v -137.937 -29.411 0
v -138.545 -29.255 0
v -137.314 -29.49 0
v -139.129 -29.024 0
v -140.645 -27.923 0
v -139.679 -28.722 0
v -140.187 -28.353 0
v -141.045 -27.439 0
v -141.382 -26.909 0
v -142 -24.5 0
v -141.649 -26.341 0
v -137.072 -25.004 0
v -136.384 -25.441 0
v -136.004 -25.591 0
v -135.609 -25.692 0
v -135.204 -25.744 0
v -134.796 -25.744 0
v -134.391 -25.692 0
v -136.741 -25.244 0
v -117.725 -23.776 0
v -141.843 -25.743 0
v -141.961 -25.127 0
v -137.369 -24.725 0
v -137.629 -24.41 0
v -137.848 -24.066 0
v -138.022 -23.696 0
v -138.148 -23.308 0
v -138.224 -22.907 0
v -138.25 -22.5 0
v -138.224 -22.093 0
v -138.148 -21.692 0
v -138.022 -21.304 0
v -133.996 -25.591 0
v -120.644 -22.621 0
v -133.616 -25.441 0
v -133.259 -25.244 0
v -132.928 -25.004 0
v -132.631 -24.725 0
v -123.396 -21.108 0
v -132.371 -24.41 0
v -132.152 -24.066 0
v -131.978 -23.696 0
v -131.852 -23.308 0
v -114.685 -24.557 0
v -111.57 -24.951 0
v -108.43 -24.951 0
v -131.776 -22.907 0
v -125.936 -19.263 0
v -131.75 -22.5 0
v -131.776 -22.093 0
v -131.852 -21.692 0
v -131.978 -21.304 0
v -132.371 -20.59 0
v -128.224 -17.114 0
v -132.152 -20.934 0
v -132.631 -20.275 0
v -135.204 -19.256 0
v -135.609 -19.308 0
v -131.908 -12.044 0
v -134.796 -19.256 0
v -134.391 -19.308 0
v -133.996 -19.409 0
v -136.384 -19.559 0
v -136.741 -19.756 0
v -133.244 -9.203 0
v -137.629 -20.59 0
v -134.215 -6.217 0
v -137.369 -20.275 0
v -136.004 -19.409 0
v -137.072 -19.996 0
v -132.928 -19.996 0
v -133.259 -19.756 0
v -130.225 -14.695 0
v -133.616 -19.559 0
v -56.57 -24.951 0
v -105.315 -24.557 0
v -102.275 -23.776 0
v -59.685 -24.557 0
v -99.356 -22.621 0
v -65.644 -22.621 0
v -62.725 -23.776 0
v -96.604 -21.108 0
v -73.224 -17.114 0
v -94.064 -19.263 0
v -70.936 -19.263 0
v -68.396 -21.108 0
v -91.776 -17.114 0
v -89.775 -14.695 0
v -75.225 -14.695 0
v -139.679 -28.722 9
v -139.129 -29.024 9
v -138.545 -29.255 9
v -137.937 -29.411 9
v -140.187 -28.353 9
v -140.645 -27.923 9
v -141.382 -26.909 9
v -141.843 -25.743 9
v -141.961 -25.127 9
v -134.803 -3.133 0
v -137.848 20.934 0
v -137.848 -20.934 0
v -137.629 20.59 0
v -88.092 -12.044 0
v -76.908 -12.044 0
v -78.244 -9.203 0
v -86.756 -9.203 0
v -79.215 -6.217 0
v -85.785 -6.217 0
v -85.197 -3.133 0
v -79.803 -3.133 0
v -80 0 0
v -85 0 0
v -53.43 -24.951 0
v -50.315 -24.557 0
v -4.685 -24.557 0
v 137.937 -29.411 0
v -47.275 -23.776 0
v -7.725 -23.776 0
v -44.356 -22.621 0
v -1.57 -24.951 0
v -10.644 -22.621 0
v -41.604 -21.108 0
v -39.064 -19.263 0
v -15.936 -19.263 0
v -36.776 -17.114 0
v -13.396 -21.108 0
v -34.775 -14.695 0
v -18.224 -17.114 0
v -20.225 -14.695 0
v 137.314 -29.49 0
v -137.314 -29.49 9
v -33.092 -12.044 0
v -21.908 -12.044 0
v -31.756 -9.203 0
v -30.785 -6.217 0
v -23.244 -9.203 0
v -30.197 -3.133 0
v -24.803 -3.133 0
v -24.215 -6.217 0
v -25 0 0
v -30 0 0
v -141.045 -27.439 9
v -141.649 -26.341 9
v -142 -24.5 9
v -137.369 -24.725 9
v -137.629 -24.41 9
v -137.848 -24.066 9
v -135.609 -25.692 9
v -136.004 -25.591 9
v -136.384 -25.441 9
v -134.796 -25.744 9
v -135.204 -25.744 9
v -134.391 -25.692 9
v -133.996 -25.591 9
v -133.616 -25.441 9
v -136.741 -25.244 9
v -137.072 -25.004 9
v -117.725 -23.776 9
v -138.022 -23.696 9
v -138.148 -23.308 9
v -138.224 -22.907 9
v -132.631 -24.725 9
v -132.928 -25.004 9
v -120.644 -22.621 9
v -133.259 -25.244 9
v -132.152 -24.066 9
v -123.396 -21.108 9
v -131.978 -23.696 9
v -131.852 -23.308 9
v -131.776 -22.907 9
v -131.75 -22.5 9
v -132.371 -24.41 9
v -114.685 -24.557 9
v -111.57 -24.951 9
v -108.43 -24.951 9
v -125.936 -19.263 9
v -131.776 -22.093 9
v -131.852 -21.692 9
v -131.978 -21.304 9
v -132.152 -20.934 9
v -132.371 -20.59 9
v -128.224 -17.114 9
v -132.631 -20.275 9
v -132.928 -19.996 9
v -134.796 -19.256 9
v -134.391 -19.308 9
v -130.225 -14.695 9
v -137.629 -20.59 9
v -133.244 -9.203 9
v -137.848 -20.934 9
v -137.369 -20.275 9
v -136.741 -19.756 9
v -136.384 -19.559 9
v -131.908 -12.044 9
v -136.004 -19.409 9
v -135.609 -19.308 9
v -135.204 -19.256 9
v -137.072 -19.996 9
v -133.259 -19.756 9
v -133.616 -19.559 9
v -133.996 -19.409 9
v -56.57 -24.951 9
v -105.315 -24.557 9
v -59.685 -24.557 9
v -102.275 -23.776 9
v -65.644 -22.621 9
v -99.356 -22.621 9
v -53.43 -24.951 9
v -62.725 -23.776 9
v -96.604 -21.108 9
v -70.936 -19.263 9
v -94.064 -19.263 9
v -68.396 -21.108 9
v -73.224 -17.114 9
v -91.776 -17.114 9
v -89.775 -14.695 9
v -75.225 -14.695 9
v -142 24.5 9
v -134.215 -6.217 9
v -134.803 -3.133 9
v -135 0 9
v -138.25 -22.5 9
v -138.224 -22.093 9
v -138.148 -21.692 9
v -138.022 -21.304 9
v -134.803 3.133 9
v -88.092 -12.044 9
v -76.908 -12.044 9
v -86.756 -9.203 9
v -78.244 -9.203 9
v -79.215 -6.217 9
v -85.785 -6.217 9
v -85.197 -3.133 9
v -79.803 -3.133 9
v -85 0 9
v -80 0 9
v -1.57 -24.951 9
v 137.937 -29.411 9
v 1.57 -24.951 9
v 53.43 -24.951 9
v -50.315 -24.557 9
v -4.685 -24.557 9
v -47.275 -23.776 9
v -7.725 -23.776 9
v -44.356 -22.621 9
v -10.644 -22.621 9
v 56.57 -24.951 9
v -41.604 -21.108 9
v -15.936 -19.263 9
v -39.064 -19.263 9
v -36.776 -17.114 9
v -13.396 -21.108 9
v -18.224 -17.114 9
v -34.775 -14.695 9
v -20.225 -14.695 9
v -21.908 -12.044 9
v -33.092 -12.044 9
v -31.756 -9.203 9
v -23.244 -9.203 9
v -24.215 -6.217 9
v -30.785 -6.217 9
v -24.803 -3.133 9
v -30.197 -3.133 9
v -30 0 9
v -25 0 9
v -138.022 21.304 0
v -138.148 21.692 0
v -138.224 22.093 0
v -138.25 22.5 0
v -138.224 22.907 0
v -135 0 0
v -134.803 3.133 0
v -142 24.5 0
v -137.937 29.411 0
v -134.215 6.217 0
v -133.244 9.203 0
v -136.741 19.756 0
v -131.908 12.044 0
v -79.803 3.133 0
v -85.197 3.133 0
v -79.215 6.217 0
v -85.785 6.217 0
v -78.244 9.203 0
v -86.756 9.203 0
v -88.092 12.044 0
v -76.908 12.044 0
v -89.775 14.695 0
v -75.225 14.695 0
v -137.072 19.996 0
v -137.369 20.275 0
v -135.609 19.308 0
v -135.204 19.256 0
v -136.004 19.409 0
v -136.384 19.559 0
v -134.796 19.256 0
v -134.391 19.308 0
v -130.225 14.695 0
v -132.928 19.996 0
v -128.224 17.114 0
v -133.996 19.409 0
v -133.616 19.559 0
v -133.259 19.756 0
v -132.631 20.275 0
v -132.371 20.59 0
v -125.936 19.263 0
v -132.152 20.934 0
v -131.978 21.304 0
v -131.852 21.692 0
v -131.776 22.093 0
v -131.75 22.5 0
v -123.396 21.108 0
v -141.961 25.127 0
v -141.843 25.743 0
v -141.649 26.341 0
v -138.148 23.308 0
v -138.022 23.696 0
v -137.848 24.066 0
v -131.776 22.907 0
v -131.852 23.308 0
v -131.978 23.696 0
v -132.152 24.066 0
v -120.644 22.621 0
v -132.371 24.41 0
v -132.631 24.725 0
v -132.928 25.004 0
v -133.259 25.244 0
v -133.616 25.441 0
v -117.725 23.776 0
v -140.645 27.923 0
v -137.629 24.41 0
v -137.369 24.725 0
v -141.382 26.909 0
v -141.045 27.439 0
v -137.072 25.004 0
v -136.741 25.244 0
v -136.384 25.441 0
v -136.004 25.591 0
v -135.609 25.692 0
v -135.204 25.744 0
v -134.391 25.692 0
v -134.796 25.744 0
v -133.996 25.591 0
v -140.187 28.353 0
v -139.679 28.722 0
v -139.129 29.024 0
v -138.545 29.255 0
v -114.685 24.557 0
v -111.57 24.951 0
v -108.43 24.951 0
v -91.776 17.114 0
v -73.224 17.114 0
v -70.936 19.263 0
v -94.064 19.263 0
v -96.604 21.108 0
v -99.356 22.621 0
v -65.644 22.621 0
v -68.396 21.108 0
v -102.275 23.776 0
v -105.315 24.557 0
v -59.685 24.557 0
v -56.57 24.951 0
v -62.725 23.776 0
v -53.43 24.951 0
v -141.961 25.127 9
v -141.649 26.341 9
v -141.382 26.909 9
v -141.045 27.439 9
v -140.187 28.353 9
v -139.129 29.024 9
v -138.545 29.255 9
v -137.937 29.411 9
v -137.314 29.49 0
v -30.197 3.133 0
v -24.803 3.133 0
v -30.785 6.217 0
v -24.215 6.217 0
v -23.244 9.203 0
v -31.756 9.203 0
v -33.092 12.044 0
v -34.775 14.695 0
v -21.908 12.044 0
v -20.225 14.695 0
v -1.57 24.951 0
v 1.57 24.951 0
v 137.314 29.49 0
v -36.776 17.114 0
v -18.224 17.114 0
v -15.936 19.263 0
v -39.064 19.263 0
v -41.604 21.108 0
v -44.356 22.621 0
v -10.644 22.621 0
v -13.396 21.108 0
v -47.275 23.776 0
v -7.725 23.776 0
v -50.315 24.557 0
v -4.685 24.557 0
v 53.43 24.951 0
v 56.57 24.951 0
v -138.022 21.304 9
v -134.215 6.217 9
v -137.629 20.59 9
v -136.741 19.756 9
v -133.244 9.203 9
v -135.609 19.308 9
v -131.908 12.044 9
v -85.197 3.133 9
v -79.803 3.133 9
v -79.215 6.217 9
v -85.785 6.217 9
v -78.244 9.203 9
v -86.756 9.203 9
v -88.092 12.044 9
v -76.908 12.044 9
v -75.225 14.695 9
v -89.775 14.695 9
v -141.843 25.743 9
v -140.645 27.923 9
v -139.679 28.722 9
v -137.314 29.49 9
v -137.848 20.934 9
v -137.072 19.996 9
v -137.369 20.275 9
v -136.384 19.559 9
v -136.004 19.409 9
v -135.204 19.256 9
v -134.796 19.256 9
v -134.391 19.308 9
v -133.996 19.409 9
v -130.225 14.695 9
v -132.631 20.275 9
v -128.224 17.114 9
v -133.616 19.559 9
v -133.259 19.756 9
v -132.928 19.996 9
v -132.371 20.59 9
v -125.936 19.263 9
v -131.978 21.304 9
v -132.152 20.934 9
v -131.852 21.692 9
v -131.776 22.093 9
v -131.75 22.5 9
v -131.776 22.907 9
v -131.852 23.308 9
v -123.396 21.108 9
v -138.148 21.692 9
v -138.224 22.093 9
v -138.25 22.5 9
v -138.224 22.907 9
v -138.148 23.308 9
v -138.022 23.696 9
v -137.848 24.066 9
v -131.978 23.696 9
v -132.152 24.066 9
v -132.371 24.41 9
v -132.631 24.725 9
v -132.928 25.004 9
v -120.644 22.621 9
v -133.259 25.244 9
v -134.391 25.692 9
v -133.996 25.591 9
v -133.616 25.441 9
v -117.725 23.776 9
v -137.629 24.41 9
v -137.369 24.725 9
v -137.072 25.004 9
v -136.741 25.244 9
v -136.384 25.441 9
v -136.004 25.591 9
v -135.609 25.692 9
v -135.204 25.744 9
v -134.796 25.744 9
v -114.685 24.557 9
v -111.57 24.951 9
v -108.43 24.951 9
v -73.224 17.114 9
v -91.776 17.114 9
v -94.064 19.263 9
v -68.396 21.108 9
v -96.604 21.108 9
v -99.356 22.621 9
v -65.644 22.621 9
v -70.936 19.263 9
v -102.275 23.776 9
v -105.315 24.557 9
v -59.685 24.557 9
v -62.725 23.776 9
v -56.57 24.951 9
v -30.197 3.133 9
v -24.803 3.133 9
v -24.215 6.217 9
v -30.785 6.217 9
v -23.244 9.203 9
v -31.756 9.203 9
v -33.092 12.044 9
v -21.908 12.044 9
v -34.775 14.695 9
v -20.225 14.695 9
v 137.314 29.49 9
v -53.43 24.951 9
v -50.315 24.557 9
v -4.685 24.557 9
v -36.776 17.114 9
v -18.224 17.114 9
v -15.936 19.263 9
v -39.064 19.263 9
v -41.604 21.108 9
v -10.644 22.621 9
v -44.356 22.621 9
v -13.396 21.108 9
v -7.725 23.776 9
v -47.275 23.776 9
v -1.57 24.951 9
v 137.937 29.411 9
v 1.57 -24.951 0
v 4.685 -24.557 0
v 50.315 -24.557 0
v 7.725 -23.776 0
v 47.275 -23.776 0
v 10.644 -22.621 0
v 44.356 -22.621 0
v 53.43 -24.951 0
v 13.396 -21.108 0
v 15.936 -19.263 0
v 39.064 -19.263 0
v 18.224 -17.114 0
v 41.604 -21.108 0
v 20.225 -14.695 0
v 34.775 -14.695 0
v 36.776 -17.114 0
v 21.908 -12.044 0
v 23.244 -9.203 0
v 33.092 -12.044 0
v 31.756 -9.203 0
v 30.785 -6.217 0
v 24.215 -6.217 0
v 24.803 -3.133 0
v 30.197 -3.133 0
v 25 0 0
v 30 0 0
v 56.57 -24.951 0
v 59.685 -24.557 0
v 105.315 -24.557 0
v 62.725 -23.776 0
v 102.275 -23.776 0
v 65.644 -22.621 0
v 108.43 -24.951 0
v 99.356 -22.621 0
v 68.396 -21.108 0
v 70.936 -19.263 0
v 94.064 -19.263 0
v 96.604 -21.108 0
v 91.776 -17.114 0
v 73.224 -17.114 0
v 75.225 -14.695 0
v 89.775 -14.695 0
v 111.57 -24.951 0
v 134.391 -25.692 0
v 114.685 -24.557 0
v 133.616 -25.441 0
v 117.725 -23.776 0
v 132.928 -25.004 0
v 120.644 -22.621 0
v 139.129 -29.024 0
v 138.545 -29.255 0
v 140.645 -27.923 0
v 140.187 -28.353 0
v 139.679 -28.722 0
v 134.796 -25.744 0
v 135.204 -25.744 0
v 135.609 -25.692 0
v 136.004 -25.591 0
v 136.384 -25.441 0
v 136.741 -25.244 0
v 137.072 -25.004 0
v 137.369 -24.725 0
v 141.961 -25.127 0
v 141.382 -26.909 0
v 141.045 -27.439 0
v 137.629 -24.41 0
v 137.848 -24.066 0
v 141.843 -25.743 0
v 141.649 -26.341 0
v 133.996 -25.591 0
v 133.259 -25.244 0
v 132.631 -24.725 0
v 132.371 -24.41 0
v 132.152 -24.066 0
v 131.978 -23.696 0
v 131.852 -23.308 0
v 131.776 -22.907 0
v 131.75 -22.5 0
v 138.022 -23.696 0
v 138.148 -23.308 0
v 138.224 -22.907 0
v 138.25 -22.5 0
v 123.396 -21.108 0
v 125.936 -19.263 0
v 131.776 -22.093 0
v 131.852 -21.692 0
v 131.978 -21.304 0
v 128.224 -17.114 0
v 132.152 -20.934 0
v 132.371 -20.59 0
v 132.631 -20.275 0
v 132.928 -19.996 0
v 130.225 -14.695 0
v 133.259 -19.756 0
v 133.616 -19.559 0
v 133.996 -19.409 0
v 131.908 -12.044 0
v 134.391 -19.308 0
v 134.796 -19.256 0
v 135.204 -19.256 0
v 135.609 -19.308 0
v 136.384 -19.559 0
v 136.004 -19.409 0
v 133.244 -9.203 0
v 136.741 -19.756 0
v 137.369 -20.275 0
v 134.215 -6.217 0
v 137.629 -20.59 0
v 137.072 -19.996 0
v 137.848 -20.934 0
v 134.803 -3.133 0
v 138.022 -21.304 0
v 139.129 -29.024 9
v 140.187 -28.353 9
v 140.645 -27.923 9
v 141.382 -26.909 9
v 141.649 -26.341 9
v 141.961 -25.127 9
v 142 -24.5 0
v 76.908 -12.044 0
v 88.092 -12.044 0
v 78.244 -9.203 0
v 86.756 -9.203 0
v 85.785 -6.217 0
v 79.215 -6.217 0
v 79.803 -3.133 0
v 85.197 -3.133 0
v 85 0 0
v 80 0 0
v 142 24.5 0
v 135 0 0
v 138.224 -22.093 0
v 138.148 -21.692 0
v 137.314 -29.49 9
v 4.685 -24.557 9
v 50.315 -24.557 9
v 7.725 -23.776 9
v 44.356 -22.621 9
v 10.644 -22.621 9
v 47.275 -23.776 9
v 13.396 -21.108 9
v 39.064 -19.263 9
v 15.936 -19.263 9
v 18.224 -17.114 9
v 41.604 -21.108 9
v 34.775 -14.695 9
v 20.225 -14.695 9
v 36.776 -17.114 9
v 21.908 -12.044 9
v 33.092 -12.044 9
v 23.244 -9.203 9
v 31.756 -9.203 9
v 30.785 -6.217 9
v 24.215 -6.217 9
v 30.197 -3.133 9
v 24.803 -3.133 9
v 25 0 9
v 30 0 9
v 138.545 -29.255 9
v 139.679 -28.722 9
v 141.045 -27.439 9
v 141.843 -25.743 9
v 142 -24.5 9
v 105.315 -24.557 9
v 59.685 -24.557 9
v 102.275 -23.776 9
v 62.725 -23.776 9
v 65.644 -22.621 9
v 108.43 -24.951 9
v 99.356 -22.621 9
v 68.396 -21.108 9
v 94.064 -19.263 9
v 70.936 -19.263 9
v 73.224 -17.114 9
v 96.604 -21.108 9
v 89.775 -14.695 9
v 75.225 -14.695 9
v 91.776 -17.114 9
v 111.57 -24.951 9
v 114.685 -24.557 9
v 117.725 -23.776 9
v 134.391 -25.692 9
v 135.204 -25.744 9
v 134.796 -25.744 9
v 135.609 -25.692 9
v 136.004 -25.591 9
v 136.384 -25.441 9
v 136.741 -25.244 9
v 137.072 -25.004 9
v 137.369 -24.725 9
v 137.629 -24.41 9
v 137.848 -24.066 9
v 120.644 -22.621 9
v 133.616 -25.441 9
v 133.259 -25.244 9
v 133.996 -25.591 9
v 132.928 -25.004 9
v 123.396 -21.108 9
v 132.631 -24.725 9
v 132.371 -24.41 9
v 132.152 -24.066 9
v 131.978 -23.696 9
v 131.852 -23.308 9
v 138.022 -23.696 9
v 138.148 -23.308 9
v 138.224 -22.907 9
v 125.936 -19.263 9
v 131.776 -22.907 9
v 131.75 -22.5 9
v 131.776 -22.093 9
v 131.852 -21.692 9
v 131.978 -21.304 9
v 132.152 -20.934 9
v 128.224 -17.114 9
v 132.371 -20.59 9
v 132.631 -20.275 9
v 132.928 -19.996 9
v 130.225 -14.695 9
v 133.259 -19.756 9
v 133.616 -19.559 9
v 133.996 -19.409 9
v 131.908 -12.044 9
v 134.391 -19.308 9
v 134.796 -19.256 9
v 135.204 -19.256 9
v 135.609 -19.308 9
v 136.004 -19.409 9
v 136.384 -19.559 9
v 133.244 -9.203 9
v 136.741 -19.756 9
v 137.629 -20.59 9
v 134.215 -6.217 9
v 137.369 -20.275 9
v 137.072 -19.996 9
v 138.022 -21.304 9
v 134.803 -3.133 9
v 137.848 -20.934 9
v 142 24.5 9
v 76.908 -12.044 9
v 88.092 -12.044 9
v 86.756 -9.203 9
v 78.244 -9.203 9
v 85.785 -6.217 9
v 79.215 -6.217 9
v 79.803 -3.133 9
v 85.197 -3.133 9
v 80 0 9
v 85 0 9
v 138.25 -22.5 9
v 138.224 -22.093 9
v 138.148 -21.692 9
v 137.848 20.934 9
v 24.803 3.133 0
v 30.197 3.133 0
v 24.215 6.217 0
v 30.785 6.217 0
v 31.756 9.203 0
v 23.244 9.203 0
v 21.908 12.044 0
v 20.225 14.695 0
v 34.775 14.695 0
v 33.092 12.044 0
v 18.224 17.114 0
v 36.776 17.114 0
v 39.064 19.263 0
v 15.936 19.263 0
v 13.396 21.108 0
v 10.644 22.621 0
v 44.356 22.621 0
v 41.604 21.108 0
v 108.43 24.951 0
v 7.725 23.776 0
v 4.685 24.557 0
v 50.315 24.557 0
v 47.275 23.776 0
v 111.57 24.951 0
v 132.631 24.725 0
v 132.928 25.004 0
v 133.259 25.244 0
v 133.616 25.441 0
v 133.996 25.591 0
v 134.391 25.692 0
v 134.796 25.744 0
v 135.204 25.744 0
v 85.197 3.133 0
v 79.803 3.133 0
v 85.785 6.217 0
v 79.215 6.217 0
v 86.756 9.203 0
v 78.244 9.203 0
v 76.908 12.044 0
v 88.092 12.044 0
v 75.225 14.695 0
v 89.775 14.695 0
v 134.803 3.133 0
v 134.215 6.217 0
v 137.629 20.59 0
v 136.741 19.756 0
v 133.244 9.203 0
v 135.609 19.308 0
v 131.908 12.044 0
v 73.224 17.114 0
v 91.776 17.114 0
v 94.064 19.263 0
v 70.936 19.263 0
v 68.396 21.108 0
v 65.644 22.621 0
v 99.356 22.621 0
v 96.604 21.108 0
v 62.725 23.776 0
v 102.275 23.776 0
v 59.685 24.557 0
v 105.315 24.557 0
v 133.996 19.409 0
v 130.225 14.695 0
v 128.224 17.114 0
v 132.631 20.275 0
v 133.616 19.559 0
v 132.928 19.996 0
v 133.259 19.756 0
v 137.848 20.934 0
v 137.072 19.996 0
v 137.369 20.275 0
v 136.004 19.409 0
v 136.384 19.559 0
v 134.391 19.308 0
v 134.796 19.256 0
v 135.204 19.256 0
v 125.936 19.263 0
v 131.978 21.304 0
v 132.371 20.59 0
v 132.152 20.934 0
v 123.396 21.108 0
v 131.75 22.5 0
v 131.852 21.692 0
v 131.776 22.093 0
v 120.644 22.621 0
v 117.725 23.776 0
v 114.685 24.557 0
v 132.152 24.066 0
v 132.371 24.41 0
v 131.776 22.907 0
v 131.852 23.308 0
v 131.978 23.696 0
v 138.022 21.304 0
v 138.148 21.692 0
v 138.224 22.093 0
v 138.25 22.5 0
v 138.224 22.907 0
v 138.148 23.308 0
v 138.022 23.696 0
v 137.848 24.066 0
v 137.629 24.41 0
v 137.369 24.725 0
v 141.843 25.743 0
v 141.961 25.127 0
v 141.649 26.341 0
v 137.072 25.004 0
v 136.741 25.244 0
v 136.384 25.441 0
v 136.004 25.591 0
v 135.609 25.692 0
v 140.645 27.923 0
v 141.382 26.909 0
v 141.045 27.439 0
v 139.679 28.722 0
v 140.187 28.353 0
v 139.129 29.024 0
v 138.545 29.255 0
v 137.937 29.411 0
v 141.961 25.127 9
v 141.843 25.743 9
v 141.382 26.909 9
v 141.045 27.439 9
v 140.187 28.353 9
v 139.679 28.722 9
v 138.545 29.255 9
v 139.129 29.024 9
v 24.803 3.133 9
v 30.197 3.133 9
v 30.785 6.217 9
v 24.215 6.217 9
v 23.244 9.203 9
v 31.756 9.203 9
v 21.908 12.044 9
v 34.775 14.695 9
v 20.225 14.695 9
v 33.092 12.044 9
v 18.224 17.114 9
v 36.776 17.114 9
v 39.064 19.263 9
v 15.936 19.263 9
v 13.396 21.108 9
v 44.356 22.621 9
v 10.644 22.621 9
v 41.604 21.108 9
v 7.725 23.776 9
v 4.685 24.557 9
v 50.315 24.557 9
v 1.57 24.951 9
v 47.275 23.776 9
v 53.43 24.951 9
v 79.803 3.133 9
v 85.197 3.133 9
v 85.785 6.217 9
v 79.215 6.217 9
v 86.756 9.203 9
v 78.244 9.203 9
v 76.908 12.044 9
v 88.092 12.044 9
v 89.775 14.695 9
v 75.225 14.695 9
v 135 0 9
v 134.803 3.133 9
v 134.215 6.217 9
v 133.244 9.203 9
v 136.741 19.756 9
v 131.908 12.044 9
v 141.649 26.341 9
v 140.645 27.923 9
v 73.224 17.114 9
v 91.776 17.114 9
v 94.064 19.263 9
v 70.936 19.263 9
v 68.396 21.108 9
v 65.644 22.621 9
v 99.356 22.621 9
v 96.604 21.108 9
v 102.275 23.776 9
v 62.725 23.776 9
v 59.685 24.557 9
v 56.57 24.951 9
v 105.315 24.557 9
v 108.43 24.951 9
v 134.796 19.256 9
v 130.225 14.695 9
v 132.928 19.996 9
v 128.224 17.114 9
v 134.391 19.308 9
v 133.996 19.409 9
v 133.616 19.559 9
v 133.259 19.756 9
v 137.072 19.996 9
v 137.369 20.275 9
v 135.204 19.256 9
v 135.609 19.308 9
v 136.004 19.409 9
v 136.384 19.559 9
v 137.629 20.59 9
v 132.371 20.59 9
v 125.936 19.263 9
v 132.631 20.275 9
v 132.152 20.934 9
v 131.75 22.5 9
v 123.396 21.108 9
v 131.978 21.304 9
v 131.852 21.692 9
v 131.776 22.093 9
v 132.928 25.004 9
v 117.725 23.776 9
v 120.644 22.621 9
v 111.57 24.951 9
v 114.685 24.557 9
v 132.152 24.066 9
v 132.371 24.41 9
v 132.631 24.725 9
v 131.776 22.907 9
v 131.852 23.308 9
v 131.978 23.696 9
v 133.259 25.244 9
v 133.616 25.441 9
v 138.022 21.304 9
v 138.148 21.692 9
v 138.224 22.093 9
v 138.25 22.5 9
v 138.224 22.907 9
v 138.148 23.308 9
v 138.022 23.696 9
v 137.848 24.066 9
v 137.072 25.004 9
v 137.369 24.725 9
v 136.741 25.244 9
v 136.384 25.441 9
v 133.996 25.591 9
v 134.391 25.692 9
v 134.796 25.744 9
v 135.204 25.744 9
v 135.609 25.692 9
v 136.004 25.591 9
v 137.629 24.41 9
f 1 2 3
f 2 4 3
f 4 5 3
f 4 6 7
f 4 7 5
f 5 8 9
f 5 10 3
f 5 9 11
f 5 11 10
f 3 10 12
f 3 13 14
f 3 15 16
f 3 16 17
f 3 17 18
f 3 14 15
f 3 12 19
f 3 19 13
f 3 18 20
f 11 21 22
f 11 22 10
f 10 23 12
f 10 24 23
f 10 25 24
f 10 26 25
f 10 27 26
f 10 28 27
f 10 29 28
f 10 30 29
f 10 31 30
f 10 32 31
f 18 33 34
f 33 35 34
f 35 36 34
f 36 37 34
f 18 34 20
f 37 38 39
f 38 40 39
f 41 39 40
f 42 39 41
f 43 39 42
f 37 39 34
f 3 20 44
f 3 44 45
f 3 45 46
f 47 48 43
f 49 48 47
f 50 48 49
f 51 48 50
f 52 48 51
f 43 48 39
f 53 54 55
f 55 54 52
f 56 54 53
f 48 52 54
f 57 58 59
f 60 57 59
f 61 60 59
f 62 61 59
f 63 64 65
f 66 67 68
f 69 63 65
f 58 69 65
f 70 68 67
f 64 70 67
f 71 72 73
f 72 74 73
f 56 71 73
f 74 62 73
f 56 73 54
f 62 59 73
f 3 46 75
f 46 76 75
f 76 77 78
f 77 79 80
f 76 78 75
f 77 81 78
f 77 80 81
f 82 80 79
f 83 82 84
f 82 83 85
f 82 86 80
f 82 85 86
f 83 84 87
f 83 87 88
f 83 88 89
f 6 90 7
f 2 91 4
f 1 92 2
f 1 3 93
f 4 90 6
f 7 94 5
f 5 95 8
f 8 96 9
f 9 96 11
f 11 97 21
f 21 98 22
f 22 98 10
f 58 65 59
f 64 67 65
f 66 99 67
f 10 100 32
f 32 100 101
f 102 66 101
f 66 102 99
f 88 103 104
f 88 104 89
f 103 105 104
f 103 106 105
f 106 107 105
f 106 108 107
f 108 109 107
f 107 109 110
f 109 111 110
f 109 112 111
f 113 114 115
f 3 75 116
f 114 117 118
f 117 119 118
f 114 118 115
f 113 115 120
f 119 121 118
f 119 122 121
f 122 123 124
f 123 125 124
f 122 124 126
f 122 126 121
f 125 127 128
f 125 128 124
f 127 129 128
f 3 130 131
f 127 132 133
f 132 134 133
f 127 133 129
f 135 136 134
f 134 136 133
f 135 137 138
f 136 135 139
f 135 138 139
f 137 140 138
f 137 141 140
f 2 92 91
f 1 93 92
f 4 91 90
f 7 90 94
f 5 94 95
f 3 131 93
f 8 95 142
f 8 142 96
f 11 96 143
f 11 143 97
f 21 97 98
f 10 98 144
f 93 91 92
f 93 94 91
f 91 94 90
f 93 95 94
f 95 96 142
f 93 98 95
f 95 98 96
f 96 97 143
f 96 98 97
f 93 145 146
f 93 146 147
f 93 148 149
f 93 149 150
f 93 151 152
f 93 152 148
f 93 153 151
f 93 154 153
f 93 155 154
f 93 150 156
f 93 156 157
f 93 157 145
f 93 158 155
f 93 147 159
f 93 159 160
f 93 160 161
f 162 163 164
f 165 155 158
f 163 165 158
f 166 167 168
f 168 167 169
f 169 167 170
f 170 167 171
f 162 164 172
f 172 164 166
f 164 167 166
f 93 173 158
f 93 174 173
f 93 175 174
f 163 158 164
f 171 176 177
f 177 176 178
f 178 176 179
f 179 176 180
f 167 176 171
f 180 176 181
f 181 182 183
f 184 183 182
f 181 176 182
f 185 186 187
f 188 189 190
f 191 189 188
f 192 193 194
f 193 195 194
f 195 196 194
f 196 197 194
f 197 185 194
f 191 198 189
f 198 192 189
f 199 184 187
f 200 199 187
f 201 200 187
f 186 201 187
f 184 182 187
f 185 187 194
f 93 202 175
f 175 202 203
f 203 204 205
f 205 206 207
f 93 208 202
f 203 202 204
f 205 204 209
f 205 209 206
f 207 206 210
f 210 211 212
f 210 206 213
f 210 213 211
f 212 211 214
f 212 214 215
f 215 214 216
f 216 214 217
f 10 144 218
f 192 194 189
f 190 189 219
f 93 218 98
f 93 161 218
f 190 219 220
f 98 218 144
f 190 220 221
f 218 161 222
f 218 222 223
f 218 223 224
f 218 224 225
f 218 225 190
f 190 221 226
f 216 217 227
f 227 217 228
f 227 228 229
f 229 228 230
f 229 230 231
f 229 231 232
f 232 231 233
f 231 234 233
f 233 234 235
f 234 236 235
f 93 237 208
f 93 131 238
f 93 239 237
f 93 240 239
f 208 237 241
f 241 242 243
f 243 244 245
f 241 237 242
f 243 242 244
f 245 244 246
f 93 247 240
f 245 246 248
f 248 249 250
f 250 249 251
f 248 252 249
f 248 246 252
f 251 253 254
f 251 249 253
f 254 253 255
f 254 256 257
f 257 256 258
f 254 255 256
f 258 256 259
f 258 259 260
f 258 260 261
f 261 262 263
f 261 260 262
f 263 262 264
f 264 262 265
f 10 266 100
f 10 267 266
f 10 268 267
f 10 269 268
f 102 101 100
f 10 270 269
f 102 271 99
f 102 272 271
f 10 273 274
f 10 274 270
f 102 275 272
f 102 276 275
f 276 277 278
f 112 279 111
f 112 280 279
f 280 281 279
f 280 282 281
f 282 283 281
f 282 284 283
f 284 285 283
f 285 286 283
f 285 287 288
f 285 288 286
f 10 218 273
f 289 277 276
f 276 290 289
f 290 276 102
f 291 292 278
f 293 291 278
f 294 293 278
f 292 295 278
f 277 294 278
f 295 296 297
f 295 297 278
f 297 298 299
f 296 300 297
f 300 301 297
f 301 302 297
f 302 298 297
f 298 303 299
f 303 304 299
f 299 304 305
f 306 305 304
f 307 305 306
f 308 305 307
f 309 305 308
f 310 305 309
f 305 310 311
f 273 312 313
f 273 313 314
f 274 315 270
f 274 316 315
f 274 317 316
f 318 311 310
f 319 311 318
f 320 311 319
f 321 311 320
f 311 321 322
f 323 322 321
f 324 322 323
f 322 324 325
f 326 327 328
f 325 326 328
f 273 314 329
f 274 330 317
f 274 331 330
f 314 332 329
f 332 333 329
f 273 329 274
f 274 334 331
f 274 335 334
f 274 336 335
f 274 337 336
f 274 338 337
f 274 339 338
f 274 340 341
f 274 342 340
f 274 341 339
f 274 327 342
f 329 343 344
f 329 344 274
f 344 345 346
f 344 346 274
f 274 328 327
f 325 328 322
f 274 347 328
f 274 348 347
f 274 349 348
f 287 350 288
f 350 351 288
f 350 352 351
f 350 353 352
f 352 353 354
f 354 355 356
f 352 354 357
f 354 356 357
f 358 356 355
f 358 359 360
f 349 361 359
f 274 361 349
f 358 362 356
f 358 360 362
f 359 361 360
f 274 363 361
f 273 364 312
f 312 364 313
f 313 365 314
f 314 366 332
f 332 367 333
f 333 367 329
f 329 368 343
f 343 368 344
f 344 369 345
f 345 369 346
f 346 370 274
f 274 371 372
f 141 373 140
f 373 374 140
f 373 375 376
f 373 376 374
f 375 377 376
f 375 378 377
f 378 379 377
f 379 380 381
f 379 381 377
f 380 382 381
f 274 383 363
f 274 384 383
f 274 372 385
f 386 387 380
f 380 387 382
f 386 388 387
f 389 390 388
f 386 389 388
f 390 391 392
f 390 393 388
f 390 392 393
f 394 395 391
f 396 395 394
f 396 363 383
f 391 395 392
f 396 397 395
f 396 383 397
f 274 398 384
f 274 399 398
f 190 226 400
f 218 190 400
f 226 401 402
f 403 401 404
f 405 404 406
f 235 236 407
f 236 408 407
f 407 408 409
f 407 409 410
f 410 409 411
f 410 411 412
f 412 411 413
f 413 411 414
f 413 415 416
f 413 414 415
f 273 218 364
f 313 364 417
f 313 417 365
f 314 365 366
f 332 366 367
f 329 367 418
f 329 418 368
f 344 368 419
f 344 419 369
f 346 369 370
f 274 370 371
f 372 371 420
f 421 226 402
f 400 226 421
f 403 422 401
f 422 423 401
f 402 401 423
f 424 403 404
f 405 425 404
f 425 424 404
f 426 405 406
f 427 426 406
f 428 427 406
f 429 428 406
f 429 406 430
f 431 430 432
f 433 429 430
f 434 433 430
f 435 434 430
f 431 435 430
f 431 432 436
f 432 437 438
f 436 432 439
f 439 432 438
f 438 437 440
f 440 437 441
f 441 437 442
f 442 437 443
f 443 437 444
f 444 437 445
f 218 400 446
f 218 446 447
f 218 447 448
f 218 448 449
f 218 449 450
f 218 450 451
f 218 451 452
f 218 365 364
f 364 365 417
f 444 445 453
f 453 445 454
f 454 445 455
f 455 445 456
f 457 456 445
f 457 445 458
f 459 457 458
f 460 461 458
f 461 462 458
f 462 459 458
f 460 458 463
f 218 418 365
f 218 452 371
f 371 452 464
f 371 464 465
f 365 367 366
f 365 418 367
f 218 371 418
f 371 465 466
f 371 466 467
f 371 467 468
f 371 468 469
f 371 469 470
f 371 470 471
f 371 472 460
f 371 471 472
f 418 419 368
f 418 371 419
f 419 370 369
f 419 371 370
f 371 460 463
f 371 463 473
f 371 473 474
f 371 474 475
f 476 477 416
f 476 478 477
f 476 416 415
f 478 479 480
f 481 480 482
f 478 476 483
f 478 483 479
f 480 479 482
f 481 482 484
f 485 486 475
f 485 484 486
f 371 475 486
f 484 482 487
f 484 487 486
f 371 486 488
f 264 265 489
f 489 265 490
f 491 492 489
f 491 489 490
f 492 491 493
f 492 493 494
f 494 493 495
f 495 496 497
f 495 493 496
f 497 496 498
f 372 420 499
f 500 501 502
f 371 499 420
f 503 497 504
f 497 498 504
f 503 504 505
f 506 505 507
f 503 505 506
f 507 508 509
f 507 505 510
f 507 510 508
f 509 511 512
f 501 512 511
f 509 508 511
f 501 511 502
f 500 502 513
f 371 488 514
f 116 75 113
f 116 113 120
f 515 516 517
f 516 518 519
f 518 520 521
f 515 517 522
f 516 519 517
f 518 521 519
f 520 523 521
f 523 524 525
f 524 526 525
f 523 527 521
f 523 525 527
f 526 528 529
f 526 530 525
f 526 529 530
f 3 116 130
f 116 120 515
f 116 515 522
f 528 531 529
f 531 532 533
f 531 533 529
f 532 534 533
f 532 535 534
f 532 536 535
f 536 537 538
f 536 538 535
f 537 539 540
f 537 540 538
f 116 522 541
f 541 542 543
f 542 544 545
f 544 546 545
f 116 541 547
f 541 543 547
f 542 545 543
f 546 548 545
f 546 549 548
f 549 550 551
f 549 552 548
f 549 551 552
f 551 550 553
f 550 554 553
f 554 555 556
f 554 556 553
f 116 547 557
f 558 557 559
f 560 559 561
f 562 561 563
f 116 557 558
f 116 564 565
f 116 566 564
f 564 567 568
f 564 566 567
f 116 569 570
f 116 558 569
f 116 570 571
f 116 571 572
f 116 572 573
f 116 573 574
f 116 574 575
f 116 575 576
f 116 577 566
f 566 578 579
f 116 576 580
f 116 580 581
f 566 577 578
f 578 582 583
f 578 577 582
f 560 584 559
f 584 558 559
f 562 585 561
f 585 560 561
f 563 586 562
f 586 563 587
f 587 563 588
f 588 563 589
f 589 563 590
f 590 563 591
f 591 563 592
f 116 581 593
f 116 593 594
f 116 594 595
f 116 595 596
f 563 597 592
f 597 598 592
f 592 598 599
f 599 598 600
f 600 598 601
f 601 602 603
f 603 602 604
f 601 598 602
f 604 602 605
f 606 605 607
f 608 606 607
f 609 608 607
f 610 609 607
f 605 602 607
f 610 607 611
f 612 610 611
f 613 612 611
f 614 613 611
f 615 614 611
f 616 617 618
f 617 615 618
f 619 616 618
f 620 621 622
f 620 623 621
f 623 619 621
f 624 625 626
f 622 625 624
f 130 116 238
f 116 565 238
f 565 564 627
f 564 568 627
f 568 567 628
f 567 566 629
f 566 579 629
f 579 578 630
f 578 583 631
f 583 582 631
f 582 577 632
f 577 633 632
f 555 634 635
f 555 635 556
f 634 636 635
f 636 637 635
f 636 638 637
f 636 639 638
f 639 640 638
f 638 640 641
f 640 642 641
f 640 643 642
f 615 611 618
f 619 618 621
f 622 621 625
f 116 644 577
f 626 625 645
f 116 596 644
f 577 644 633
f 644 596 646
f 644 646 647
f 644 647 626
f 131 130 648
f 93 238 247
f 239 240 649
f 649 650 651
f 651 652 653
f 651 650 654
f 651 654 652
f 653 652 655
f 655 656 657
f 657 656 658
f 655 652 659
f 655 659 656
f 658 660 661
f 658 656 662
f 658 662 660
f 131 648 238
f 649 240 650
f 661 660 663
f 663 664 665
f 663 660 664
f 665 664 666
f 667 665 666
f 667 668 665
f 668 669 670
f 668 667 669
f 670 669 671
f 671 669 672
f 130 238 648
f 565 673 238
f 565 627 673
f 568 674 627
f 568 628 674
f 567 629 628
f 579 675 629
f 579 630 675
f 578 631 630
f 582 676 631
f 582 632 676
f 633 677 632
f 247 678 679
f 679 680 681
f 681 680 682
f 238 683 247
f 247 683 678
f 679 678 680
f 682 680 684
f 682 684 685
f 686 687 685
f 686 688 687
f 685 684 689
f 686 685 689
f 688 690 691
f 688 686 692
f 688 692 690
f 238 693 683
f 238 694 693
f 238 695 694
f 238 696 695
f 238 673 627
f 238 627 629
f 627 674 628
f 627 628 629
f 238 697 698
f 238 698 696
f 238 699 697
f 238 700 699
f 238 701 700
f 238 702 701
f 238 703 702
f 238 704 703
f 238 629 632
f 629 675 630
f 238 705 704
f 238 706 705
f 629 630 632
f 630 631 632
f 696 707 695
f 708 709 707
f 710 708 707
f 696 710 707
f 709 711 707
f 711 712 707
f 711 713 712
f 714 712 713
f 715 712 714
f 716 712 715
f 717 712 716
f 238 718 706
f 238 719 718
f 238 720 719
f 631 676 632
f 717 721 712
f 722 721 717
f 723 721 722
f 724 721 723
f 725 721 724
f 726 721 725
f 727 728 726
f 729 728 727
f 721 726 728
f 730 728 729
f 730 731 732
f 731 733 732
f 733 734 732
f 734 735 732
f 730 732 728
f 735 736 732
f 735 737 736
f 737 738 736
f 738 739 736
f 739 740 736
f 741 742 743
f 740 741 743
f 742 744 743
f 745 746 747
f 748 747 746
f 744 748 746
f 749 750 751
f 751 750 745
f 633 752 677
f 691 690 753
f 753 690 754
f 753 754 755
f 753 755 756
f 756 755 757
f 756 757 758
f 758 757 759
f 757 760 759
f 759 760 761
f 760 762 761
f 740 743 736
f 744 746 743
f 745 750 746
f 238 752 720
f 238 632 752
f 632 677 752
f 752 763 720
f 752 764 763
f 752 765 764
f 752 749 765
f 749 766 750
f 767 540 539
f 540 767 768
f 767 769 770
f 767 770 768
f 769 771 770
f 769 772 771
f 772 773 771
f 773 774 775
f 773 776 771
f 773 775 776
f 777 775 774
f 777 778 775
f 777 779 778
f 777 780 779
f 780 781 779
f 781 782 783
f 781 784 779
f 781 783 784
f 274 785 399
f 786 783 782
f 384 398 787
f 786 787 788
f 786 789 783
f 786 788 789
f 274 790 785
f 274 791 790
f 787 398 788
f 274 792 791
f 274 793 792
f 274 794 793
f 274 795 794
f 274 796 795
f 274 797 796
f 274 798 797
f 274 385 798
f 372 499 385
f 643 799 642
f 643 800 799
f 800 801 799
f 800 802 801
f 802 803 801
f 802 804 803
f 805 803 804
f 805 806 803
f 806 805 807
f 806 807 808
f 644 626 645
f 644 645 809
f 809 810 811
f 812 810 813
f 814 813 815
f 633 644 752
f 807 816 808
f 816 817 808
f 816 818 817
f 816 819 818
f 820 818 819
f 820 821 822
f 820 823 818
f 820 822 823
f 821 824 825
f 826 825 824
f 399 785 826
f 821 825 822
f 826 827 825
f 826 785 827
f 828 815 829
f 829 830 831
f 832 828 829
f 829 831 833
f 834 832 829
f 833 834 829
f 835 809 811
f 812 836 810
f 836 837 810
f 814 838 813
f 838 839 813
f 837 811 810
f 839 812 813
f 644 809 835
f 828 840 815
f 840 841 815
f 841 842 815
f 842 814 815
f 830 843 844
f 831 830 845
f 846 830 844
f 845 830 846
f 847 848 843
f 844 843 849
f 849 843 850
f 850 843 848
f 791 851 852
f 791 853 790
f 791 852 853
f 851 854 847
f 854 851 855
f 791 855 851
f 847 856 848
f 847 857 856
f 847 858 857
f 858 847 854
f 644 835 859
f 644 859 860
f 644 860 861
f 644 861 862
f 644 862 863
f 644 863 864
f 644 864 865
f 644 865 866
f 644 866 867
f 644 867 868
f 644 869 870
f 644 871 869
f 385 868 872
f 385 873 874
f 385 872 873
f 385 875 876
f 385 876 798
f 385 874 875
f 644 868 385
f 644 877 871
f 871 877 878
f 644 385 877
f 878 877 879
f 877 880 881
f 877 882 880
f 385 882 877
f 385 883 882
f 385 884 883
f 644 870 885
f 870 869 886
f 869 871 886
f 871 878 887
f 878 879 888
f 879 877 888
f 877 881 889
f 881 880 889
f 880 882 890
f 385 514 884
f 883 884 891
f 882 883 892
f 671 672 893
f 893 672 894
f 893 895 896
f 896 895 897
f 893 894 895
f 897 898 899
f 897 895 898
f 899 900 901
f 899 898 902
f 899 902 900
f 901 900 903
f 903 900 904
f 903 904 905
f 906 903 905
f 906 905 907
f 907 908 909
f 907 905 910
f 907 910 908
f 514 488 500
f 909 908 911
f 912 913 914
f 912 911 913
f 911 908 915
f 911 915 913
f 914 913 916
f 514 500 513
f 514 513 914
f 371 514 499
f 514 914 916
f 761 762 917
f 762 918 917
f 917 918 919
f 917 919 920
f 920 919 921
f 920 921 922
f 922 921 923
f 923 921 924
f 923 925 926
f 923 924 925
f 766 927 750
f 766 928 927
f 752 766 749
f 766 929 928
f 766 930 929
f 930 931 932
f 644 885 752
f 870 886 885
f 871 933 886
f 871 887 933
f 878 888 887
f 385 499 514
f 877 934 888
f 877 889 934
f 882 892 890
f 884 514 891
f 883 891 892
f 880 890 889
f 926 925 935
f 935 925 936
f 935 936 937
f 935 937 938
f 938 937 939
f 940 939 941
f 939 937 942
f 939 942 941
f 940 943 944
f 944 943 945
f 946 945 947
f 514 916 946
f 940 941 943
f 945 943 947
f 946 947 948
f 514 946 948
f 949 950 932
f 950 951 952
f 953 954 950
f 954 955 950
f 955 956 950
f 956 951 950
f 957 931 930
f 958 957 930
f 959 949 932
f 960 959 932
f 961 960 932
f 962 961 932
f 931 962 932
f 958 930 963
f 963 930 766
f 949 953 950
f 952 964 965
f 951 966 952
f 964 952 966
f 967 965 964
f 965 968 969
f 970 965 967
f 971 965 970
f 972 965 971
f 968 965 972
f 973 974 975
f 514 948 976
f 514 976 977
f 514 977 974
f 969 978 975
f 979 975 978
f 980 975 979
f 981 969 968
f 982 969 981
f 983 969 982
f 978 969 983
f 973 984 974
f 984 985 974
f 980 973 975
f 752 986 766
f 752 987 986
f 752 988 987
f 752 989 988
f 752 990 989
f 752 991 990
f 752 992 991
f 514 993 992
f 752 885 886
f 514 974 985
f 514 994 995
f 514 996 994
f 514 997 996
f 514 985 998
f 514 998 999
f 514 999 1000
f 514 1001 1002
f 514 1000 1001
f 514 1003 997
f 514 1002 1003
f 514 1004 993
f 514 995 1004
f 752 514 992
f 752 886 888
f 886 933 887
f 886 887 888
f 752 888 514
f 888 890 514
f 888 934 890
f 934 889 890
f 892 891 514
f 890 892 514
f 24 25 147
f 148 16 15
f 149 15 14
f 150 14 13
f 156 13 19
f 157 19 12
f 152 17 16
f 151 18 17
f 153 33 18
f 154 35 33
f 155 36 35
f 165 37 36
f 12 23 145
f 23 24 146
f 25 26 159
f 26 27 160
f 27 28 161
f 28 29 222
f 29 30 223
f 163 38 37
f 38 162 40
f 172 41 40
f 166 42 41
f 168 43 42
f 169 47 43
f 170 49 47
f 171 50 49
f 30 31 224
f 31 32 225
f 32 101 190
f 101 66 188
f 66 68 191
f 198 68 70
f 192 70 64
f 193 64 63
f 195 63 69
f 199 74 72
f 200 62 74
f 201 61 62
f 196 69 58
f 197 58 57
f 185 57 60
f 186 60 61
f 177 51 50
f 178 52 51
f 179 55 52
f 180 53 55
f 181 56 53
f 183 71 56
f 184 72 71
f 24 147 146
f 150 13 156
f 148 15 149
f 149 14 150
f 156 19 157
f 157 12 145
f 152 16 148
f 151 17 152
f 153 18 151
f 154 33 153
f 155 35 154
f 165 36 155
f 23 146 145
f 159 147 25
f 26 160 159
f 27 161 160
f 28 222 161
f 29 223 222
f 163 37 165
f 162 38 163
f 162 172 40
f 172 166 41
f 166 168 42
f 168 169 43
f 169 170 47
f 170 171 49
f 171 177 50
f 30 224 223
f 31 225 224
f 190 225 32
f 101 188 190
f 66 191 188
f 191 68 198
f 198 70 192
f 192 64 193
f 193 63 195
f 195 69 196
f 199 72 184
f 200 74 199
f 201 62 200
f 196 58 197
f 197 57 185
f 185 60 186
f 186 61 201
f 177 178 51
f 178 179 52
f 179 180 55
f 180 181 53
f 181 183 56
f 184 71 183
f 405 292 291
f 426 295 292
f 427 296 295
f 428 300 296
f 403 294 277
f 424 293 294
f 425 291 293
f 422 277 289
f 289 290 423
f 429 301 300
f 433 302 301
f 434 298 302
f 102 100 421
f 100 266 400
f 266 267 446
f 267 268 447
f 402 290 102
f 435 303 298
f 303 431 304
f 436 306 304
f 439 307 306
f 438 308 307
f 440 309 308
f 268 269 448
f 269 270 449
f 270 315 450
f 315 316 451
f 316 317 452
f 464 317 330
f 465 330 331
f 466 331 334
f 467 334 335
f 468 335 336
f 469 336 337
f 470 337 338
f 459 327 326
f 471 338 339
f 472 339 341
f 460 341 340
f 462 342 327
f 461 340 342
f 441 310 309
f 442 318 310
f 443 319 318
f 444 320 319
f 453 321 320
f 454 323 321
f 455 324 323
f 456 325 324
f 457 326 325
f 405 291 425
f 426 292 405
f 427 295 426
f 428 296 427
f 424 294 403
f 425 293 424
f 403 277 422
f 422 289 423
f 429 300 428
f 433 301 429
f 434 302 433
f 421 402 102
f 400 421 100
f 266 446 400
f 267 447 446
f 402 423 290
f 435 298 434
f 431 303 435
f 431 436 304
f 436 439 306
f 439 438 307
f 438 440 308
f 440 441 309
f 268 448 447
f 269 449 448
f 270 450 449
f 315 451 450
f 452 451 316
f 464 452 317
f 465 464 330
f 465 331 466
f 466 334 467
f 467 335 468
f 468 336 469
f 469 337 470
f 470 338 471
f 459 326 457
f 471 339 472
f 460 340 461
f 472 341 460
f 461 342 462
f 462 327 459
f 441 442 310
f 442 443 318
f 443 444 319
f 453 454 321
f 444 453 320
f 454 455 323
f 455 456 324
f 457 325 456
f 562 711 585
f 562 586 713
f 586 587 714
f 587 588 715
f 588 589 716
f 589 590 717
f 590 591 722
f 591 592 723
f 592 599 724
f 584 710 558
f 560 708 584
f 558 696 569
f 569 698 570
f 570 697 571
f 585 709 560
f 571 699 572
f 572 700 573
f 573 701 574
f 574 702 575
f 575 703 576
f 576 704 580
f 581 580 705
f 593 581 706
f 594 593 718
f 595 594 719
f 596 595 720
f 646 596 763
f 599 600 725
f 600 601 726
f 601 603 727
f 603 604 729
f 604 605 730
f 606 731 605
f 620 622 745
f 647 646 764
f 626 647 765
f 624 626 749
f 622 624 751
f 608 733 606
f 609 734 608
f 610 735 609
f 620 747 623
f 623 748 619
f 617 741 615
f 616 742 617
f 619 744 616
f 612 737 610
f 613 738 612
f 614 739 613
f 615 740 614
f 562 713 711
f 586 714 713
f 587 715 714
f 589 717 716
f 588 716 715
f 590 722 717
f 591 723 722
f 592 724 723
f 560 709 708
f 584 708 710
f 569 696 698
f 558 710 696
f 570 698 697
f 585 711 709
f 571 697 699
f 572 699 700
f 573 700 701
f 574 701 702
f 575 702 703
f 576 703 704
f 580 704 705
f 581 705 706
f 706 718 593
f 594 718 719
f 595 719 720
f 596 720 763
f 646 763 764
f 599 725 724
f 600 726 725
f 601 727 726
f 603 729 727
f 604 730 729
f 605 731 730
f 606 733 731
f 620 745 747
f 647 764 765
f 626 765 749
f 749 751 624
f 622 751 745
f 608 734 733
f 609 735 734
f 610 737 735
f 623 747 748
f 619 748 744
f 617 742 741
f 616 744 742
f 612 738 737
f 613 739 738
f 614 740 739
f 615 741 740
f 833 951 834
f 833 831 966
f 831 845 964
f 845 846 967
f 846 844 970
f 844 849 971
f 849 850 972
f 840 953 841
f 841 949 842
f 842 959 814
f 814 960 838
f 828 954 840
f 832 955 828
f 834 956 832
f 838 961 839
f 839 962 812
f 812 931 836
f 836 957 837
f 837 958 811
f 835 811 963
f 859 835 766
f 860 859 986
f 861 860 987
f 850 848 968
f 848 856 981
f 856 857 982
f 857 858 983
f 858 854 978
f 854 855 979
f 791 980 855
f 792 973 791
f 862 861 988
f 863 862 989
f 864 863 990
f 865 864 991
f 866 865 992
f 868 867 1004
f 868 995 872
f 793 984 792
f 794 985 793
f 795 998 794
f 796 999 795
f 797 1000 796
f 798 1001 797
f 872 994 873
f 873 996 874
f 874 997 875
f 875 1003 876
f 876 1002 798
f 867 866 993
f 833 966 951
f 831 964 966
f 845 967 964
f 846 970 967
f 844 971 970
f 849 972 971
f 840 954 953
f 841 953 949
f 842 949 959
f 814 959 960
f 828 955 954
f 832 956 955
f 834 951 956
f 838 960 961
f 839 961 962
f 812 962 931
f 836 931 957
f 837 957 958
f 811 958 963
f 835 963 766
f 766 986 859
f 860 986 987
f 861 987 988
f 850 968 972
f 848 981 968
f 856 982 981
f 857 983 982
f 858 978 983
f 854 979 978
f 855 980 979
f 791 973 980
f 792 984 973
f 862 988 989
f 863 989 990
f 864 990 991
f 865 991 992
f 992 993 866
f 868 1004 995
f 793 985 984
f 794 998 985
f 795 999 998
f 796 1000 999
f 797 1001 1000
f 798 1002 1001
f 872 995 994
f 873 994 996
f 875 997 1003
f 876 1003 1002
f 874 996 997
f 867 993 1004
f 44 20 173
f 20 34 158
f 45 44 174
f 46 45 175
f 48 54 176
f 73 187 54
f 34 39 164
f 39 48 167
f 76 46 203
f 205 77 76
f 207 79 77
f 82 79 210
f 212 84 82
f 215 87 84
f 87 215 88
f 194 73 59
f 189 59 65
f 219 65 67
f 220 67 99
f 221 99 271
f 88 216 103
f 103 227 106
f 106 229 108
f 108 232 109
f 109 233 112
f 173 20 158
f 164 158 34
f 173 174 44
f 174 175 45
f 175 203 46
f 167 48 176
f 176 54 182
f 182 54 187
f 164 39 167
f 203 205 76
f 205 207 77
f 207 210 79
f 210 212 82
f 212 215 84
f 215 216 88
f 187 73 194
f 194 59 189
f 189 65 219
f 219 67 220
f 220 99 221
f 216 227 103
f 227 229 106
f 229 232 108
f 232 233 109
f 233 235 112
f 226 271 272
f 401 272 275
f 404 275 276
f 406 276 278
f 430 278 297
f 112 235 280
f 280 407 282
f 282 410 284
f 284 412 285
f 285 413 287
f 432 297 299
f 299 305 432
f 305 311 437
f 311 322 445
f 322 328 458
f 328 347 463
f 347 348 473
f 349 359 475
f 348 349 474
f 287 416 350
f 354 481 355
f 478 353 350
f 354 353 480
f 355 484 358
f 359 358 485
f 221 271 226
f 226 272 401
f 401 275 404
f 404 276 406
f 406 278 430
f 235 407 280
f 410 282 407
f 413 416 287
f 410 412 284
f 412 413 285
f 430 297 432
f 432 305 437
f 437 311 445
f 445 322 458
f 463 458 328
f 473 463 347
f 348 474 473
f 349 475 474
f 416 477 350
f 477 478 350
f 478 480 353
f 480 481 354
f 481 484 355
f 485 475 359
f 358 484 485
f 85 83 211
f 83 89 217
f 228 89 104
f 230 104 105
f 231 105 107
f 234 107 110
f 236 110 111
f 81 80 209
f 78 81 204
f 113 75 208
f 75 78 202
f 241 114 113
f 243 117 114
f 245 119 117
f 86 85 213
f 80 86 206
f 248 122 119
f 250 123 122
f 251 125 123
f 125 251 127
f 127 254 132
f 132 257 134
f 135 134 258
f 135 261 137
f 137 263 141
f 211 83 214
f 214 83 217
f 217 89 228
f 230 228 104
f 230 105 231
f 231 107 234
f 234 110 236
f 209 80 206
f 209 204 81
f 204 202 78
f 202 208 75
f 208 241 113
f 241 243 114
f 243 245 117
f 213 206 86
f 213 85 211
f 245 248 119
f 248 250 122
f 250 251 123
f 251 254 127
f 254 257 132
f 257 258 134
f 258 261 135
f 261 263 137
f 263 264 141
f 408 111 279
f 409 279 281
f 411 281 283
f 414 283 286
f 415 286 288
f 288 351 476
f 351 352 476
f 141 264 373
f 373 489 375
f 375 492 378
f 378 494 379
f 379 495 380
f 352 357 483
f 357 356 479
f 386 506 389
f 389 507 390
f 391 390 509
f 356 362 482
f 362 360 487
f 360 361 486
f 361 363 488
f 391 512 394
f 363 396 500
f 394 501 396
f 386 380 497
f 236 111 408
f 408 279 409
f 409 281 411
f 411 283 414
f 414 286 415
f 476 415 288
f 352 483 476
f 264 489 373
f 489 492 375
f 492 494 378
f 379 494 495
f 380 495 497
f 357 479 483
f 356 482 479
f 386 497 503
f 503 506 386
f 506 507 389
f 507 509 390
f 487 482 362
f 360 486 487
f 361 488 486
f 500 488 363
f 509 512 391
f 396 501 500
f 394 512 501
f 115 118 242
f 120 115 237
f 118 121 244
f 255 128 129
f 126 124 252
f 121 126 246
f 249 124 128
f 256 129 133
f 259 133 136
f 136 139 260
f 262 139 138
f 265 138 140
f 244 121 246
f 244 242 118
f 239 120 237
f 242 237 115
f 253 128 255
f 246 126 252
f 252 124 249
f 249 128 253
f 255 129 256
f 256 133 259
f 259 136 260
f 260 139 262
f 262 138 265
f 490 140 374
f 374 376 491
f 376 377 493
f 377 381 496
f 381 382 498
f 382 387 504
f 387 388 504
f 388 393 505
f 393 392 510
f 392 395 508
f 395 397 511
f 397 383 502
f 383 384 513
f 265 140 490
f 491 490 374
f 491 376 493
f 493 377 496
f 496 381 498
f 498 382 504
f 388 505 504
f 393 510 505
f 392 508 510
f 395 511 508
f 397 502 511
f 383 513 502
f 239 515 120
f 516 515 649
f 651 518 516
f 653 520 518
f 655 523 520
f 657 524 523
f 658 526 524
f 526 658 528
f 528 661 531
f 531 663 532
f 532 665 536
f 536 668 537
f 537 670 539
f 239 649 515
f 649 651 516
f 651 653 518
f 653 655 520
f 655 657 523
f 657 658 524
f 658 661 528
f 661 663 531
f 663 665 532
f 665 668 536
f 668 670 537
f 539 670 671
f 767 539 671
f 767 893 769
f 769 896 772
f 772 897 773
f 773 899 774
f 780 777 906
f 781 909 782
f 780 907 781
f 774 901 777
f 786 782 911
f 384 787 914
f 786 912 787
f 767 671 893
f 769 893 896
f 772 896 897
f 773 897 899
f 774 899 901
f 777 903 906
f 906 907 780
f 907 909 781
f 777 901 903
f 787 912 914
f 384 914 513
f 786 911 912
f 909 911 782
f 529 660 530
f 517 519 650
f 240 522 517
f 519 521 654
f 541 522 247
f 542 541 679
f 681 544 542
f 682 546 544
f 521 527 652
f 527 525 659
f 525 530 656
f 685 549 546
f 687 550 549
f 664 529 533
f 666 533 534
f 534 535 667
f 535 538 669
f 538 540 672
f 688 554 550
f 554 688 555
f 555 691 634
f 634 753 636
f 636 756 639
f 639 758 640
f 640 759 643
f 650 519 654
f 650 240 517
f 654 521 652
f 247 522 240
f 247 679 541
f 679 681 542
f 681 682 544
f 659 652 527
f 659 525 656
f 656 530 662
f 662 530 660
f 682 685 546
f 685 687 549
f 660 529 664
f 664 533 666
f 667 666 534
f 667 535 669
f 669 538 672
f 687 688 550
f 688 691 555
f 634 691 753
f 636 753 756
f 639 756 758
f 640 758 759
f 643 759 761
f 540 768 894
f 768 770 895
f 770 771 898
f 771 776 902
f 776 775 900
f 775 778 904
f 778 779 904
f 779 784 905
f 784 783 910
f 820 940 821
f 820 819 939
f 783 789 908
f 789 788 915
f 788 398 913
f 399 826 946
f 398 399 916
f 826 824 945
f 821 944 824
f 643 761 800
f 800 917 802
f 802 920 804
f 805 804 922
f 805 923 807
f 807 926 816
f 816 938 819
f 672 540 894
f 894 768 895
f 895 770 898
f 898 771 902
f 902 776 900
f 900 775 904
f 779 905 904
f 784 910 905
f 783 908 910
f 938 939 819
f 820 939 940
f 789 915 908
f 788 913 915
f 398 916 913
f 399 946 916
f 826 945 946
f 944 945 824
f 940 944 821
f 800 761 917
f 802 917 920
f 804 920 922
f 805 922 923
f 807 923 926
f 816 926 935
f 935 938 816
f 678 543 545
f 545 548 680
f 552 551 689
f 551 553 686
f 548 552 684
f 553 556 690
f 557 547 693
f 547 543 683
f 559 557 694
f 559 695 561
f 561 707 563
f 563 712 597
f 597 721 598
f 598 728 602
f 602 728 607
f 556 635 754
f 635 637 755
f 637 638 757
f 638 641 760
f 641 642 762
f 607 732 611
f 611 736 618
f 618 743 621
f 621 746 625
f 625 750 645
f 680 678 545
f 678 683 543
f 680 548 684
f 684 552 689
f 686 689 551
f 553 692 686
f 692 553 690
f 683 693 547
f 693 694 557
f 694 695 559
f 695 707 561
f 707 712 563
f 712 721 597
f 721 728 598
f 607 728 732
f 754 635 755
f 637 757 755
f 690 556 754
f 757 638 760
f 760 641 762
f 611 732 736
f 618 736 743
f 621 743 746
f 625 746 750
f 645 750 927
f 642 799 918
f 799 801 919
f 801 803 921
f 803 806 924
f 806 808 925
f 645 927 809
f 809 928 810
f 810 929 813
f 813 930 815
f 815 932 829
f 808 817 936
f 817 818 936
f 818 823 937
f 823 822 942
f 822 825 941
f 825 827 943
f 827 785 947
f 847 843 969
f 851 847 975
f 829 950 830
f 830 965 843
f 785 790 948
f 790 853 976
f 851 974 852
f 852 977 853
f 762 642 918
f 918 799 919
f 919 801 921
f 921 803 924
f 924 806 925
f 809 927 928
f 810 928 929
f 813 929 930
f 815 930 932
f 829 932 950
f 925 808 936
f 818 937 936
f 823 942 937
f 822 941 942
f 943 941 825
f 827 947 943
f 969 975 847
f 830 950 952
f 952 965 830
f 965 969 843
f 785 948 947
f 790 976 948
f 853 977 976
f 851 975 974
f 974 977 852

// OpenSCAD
$fn = 50;

difference() {
	union() {
		hull() {
			translate(v = [-137.0, 24.5, 0]) {
				cylinder(h = 9, r = 5);
			}
			translate(v = [137.0, 24.5, 0]) {
				cylinder(h = 9, r = 5);
			}
			translate(v = [-137.0, -24.5, 0]) {
				cylinder(h = 9, r = 5);
			}
			translate(v = [137.0, -24.5, 0]) {
				cylinder(h = 9, r = 5);
			}
		}
	}
	union() {
		translate(v = [-135.0, -22.5, -100.0]) {
			cylinder(h = 200, r = 3.25);
		}
		translate(v = [-135.0, 22.5, -100.0]) {
			cylinder(h = 200, r = 3.25);
		}
		translate(v = [135.0, -22.5, -100.0]) {
			cylinder(h = 200, r = 3.25);
		}
		translate(v = [135.0, 22.5, -100.0]) {
			cylinder(h = 200, r = 3.25);
		}
		translate(v = [-135.0, -22.5, -100.0]) {
			cylinder(h = 200, r = 1.8);
		}
		translate(v = [-135.0, 22.5, -100.0]) {
			cylinder(h = 200, r = 1.8);
		}
		translate(v = [135.0, -22.5, -100.0]) {
			cylinder(h = 200, r = 1.8);
		}
		translate(v = [135.0, 22.5, -100.0]) {
			cylinder(h = 200, r = 1.8);
		}
		translate(v = [-110.0, 0, 0.0]) {
			cylinder(h = 9, r = 25.0);
		}
		translate(v = [-55.0, 0, 0.0]) {
			cylinder(h = 9, r = 25.0);
		}
		cylinder(h = 9, r = 25.0);
		translate(v = [55.0, 0, 0.0]) {
			cylinder(h = 9, r = 25.0);
		}
		translate(v = [110.0, 0, 0.0]) {
			cylinder(h = 9, r = 25.0);
		}
	}
}
